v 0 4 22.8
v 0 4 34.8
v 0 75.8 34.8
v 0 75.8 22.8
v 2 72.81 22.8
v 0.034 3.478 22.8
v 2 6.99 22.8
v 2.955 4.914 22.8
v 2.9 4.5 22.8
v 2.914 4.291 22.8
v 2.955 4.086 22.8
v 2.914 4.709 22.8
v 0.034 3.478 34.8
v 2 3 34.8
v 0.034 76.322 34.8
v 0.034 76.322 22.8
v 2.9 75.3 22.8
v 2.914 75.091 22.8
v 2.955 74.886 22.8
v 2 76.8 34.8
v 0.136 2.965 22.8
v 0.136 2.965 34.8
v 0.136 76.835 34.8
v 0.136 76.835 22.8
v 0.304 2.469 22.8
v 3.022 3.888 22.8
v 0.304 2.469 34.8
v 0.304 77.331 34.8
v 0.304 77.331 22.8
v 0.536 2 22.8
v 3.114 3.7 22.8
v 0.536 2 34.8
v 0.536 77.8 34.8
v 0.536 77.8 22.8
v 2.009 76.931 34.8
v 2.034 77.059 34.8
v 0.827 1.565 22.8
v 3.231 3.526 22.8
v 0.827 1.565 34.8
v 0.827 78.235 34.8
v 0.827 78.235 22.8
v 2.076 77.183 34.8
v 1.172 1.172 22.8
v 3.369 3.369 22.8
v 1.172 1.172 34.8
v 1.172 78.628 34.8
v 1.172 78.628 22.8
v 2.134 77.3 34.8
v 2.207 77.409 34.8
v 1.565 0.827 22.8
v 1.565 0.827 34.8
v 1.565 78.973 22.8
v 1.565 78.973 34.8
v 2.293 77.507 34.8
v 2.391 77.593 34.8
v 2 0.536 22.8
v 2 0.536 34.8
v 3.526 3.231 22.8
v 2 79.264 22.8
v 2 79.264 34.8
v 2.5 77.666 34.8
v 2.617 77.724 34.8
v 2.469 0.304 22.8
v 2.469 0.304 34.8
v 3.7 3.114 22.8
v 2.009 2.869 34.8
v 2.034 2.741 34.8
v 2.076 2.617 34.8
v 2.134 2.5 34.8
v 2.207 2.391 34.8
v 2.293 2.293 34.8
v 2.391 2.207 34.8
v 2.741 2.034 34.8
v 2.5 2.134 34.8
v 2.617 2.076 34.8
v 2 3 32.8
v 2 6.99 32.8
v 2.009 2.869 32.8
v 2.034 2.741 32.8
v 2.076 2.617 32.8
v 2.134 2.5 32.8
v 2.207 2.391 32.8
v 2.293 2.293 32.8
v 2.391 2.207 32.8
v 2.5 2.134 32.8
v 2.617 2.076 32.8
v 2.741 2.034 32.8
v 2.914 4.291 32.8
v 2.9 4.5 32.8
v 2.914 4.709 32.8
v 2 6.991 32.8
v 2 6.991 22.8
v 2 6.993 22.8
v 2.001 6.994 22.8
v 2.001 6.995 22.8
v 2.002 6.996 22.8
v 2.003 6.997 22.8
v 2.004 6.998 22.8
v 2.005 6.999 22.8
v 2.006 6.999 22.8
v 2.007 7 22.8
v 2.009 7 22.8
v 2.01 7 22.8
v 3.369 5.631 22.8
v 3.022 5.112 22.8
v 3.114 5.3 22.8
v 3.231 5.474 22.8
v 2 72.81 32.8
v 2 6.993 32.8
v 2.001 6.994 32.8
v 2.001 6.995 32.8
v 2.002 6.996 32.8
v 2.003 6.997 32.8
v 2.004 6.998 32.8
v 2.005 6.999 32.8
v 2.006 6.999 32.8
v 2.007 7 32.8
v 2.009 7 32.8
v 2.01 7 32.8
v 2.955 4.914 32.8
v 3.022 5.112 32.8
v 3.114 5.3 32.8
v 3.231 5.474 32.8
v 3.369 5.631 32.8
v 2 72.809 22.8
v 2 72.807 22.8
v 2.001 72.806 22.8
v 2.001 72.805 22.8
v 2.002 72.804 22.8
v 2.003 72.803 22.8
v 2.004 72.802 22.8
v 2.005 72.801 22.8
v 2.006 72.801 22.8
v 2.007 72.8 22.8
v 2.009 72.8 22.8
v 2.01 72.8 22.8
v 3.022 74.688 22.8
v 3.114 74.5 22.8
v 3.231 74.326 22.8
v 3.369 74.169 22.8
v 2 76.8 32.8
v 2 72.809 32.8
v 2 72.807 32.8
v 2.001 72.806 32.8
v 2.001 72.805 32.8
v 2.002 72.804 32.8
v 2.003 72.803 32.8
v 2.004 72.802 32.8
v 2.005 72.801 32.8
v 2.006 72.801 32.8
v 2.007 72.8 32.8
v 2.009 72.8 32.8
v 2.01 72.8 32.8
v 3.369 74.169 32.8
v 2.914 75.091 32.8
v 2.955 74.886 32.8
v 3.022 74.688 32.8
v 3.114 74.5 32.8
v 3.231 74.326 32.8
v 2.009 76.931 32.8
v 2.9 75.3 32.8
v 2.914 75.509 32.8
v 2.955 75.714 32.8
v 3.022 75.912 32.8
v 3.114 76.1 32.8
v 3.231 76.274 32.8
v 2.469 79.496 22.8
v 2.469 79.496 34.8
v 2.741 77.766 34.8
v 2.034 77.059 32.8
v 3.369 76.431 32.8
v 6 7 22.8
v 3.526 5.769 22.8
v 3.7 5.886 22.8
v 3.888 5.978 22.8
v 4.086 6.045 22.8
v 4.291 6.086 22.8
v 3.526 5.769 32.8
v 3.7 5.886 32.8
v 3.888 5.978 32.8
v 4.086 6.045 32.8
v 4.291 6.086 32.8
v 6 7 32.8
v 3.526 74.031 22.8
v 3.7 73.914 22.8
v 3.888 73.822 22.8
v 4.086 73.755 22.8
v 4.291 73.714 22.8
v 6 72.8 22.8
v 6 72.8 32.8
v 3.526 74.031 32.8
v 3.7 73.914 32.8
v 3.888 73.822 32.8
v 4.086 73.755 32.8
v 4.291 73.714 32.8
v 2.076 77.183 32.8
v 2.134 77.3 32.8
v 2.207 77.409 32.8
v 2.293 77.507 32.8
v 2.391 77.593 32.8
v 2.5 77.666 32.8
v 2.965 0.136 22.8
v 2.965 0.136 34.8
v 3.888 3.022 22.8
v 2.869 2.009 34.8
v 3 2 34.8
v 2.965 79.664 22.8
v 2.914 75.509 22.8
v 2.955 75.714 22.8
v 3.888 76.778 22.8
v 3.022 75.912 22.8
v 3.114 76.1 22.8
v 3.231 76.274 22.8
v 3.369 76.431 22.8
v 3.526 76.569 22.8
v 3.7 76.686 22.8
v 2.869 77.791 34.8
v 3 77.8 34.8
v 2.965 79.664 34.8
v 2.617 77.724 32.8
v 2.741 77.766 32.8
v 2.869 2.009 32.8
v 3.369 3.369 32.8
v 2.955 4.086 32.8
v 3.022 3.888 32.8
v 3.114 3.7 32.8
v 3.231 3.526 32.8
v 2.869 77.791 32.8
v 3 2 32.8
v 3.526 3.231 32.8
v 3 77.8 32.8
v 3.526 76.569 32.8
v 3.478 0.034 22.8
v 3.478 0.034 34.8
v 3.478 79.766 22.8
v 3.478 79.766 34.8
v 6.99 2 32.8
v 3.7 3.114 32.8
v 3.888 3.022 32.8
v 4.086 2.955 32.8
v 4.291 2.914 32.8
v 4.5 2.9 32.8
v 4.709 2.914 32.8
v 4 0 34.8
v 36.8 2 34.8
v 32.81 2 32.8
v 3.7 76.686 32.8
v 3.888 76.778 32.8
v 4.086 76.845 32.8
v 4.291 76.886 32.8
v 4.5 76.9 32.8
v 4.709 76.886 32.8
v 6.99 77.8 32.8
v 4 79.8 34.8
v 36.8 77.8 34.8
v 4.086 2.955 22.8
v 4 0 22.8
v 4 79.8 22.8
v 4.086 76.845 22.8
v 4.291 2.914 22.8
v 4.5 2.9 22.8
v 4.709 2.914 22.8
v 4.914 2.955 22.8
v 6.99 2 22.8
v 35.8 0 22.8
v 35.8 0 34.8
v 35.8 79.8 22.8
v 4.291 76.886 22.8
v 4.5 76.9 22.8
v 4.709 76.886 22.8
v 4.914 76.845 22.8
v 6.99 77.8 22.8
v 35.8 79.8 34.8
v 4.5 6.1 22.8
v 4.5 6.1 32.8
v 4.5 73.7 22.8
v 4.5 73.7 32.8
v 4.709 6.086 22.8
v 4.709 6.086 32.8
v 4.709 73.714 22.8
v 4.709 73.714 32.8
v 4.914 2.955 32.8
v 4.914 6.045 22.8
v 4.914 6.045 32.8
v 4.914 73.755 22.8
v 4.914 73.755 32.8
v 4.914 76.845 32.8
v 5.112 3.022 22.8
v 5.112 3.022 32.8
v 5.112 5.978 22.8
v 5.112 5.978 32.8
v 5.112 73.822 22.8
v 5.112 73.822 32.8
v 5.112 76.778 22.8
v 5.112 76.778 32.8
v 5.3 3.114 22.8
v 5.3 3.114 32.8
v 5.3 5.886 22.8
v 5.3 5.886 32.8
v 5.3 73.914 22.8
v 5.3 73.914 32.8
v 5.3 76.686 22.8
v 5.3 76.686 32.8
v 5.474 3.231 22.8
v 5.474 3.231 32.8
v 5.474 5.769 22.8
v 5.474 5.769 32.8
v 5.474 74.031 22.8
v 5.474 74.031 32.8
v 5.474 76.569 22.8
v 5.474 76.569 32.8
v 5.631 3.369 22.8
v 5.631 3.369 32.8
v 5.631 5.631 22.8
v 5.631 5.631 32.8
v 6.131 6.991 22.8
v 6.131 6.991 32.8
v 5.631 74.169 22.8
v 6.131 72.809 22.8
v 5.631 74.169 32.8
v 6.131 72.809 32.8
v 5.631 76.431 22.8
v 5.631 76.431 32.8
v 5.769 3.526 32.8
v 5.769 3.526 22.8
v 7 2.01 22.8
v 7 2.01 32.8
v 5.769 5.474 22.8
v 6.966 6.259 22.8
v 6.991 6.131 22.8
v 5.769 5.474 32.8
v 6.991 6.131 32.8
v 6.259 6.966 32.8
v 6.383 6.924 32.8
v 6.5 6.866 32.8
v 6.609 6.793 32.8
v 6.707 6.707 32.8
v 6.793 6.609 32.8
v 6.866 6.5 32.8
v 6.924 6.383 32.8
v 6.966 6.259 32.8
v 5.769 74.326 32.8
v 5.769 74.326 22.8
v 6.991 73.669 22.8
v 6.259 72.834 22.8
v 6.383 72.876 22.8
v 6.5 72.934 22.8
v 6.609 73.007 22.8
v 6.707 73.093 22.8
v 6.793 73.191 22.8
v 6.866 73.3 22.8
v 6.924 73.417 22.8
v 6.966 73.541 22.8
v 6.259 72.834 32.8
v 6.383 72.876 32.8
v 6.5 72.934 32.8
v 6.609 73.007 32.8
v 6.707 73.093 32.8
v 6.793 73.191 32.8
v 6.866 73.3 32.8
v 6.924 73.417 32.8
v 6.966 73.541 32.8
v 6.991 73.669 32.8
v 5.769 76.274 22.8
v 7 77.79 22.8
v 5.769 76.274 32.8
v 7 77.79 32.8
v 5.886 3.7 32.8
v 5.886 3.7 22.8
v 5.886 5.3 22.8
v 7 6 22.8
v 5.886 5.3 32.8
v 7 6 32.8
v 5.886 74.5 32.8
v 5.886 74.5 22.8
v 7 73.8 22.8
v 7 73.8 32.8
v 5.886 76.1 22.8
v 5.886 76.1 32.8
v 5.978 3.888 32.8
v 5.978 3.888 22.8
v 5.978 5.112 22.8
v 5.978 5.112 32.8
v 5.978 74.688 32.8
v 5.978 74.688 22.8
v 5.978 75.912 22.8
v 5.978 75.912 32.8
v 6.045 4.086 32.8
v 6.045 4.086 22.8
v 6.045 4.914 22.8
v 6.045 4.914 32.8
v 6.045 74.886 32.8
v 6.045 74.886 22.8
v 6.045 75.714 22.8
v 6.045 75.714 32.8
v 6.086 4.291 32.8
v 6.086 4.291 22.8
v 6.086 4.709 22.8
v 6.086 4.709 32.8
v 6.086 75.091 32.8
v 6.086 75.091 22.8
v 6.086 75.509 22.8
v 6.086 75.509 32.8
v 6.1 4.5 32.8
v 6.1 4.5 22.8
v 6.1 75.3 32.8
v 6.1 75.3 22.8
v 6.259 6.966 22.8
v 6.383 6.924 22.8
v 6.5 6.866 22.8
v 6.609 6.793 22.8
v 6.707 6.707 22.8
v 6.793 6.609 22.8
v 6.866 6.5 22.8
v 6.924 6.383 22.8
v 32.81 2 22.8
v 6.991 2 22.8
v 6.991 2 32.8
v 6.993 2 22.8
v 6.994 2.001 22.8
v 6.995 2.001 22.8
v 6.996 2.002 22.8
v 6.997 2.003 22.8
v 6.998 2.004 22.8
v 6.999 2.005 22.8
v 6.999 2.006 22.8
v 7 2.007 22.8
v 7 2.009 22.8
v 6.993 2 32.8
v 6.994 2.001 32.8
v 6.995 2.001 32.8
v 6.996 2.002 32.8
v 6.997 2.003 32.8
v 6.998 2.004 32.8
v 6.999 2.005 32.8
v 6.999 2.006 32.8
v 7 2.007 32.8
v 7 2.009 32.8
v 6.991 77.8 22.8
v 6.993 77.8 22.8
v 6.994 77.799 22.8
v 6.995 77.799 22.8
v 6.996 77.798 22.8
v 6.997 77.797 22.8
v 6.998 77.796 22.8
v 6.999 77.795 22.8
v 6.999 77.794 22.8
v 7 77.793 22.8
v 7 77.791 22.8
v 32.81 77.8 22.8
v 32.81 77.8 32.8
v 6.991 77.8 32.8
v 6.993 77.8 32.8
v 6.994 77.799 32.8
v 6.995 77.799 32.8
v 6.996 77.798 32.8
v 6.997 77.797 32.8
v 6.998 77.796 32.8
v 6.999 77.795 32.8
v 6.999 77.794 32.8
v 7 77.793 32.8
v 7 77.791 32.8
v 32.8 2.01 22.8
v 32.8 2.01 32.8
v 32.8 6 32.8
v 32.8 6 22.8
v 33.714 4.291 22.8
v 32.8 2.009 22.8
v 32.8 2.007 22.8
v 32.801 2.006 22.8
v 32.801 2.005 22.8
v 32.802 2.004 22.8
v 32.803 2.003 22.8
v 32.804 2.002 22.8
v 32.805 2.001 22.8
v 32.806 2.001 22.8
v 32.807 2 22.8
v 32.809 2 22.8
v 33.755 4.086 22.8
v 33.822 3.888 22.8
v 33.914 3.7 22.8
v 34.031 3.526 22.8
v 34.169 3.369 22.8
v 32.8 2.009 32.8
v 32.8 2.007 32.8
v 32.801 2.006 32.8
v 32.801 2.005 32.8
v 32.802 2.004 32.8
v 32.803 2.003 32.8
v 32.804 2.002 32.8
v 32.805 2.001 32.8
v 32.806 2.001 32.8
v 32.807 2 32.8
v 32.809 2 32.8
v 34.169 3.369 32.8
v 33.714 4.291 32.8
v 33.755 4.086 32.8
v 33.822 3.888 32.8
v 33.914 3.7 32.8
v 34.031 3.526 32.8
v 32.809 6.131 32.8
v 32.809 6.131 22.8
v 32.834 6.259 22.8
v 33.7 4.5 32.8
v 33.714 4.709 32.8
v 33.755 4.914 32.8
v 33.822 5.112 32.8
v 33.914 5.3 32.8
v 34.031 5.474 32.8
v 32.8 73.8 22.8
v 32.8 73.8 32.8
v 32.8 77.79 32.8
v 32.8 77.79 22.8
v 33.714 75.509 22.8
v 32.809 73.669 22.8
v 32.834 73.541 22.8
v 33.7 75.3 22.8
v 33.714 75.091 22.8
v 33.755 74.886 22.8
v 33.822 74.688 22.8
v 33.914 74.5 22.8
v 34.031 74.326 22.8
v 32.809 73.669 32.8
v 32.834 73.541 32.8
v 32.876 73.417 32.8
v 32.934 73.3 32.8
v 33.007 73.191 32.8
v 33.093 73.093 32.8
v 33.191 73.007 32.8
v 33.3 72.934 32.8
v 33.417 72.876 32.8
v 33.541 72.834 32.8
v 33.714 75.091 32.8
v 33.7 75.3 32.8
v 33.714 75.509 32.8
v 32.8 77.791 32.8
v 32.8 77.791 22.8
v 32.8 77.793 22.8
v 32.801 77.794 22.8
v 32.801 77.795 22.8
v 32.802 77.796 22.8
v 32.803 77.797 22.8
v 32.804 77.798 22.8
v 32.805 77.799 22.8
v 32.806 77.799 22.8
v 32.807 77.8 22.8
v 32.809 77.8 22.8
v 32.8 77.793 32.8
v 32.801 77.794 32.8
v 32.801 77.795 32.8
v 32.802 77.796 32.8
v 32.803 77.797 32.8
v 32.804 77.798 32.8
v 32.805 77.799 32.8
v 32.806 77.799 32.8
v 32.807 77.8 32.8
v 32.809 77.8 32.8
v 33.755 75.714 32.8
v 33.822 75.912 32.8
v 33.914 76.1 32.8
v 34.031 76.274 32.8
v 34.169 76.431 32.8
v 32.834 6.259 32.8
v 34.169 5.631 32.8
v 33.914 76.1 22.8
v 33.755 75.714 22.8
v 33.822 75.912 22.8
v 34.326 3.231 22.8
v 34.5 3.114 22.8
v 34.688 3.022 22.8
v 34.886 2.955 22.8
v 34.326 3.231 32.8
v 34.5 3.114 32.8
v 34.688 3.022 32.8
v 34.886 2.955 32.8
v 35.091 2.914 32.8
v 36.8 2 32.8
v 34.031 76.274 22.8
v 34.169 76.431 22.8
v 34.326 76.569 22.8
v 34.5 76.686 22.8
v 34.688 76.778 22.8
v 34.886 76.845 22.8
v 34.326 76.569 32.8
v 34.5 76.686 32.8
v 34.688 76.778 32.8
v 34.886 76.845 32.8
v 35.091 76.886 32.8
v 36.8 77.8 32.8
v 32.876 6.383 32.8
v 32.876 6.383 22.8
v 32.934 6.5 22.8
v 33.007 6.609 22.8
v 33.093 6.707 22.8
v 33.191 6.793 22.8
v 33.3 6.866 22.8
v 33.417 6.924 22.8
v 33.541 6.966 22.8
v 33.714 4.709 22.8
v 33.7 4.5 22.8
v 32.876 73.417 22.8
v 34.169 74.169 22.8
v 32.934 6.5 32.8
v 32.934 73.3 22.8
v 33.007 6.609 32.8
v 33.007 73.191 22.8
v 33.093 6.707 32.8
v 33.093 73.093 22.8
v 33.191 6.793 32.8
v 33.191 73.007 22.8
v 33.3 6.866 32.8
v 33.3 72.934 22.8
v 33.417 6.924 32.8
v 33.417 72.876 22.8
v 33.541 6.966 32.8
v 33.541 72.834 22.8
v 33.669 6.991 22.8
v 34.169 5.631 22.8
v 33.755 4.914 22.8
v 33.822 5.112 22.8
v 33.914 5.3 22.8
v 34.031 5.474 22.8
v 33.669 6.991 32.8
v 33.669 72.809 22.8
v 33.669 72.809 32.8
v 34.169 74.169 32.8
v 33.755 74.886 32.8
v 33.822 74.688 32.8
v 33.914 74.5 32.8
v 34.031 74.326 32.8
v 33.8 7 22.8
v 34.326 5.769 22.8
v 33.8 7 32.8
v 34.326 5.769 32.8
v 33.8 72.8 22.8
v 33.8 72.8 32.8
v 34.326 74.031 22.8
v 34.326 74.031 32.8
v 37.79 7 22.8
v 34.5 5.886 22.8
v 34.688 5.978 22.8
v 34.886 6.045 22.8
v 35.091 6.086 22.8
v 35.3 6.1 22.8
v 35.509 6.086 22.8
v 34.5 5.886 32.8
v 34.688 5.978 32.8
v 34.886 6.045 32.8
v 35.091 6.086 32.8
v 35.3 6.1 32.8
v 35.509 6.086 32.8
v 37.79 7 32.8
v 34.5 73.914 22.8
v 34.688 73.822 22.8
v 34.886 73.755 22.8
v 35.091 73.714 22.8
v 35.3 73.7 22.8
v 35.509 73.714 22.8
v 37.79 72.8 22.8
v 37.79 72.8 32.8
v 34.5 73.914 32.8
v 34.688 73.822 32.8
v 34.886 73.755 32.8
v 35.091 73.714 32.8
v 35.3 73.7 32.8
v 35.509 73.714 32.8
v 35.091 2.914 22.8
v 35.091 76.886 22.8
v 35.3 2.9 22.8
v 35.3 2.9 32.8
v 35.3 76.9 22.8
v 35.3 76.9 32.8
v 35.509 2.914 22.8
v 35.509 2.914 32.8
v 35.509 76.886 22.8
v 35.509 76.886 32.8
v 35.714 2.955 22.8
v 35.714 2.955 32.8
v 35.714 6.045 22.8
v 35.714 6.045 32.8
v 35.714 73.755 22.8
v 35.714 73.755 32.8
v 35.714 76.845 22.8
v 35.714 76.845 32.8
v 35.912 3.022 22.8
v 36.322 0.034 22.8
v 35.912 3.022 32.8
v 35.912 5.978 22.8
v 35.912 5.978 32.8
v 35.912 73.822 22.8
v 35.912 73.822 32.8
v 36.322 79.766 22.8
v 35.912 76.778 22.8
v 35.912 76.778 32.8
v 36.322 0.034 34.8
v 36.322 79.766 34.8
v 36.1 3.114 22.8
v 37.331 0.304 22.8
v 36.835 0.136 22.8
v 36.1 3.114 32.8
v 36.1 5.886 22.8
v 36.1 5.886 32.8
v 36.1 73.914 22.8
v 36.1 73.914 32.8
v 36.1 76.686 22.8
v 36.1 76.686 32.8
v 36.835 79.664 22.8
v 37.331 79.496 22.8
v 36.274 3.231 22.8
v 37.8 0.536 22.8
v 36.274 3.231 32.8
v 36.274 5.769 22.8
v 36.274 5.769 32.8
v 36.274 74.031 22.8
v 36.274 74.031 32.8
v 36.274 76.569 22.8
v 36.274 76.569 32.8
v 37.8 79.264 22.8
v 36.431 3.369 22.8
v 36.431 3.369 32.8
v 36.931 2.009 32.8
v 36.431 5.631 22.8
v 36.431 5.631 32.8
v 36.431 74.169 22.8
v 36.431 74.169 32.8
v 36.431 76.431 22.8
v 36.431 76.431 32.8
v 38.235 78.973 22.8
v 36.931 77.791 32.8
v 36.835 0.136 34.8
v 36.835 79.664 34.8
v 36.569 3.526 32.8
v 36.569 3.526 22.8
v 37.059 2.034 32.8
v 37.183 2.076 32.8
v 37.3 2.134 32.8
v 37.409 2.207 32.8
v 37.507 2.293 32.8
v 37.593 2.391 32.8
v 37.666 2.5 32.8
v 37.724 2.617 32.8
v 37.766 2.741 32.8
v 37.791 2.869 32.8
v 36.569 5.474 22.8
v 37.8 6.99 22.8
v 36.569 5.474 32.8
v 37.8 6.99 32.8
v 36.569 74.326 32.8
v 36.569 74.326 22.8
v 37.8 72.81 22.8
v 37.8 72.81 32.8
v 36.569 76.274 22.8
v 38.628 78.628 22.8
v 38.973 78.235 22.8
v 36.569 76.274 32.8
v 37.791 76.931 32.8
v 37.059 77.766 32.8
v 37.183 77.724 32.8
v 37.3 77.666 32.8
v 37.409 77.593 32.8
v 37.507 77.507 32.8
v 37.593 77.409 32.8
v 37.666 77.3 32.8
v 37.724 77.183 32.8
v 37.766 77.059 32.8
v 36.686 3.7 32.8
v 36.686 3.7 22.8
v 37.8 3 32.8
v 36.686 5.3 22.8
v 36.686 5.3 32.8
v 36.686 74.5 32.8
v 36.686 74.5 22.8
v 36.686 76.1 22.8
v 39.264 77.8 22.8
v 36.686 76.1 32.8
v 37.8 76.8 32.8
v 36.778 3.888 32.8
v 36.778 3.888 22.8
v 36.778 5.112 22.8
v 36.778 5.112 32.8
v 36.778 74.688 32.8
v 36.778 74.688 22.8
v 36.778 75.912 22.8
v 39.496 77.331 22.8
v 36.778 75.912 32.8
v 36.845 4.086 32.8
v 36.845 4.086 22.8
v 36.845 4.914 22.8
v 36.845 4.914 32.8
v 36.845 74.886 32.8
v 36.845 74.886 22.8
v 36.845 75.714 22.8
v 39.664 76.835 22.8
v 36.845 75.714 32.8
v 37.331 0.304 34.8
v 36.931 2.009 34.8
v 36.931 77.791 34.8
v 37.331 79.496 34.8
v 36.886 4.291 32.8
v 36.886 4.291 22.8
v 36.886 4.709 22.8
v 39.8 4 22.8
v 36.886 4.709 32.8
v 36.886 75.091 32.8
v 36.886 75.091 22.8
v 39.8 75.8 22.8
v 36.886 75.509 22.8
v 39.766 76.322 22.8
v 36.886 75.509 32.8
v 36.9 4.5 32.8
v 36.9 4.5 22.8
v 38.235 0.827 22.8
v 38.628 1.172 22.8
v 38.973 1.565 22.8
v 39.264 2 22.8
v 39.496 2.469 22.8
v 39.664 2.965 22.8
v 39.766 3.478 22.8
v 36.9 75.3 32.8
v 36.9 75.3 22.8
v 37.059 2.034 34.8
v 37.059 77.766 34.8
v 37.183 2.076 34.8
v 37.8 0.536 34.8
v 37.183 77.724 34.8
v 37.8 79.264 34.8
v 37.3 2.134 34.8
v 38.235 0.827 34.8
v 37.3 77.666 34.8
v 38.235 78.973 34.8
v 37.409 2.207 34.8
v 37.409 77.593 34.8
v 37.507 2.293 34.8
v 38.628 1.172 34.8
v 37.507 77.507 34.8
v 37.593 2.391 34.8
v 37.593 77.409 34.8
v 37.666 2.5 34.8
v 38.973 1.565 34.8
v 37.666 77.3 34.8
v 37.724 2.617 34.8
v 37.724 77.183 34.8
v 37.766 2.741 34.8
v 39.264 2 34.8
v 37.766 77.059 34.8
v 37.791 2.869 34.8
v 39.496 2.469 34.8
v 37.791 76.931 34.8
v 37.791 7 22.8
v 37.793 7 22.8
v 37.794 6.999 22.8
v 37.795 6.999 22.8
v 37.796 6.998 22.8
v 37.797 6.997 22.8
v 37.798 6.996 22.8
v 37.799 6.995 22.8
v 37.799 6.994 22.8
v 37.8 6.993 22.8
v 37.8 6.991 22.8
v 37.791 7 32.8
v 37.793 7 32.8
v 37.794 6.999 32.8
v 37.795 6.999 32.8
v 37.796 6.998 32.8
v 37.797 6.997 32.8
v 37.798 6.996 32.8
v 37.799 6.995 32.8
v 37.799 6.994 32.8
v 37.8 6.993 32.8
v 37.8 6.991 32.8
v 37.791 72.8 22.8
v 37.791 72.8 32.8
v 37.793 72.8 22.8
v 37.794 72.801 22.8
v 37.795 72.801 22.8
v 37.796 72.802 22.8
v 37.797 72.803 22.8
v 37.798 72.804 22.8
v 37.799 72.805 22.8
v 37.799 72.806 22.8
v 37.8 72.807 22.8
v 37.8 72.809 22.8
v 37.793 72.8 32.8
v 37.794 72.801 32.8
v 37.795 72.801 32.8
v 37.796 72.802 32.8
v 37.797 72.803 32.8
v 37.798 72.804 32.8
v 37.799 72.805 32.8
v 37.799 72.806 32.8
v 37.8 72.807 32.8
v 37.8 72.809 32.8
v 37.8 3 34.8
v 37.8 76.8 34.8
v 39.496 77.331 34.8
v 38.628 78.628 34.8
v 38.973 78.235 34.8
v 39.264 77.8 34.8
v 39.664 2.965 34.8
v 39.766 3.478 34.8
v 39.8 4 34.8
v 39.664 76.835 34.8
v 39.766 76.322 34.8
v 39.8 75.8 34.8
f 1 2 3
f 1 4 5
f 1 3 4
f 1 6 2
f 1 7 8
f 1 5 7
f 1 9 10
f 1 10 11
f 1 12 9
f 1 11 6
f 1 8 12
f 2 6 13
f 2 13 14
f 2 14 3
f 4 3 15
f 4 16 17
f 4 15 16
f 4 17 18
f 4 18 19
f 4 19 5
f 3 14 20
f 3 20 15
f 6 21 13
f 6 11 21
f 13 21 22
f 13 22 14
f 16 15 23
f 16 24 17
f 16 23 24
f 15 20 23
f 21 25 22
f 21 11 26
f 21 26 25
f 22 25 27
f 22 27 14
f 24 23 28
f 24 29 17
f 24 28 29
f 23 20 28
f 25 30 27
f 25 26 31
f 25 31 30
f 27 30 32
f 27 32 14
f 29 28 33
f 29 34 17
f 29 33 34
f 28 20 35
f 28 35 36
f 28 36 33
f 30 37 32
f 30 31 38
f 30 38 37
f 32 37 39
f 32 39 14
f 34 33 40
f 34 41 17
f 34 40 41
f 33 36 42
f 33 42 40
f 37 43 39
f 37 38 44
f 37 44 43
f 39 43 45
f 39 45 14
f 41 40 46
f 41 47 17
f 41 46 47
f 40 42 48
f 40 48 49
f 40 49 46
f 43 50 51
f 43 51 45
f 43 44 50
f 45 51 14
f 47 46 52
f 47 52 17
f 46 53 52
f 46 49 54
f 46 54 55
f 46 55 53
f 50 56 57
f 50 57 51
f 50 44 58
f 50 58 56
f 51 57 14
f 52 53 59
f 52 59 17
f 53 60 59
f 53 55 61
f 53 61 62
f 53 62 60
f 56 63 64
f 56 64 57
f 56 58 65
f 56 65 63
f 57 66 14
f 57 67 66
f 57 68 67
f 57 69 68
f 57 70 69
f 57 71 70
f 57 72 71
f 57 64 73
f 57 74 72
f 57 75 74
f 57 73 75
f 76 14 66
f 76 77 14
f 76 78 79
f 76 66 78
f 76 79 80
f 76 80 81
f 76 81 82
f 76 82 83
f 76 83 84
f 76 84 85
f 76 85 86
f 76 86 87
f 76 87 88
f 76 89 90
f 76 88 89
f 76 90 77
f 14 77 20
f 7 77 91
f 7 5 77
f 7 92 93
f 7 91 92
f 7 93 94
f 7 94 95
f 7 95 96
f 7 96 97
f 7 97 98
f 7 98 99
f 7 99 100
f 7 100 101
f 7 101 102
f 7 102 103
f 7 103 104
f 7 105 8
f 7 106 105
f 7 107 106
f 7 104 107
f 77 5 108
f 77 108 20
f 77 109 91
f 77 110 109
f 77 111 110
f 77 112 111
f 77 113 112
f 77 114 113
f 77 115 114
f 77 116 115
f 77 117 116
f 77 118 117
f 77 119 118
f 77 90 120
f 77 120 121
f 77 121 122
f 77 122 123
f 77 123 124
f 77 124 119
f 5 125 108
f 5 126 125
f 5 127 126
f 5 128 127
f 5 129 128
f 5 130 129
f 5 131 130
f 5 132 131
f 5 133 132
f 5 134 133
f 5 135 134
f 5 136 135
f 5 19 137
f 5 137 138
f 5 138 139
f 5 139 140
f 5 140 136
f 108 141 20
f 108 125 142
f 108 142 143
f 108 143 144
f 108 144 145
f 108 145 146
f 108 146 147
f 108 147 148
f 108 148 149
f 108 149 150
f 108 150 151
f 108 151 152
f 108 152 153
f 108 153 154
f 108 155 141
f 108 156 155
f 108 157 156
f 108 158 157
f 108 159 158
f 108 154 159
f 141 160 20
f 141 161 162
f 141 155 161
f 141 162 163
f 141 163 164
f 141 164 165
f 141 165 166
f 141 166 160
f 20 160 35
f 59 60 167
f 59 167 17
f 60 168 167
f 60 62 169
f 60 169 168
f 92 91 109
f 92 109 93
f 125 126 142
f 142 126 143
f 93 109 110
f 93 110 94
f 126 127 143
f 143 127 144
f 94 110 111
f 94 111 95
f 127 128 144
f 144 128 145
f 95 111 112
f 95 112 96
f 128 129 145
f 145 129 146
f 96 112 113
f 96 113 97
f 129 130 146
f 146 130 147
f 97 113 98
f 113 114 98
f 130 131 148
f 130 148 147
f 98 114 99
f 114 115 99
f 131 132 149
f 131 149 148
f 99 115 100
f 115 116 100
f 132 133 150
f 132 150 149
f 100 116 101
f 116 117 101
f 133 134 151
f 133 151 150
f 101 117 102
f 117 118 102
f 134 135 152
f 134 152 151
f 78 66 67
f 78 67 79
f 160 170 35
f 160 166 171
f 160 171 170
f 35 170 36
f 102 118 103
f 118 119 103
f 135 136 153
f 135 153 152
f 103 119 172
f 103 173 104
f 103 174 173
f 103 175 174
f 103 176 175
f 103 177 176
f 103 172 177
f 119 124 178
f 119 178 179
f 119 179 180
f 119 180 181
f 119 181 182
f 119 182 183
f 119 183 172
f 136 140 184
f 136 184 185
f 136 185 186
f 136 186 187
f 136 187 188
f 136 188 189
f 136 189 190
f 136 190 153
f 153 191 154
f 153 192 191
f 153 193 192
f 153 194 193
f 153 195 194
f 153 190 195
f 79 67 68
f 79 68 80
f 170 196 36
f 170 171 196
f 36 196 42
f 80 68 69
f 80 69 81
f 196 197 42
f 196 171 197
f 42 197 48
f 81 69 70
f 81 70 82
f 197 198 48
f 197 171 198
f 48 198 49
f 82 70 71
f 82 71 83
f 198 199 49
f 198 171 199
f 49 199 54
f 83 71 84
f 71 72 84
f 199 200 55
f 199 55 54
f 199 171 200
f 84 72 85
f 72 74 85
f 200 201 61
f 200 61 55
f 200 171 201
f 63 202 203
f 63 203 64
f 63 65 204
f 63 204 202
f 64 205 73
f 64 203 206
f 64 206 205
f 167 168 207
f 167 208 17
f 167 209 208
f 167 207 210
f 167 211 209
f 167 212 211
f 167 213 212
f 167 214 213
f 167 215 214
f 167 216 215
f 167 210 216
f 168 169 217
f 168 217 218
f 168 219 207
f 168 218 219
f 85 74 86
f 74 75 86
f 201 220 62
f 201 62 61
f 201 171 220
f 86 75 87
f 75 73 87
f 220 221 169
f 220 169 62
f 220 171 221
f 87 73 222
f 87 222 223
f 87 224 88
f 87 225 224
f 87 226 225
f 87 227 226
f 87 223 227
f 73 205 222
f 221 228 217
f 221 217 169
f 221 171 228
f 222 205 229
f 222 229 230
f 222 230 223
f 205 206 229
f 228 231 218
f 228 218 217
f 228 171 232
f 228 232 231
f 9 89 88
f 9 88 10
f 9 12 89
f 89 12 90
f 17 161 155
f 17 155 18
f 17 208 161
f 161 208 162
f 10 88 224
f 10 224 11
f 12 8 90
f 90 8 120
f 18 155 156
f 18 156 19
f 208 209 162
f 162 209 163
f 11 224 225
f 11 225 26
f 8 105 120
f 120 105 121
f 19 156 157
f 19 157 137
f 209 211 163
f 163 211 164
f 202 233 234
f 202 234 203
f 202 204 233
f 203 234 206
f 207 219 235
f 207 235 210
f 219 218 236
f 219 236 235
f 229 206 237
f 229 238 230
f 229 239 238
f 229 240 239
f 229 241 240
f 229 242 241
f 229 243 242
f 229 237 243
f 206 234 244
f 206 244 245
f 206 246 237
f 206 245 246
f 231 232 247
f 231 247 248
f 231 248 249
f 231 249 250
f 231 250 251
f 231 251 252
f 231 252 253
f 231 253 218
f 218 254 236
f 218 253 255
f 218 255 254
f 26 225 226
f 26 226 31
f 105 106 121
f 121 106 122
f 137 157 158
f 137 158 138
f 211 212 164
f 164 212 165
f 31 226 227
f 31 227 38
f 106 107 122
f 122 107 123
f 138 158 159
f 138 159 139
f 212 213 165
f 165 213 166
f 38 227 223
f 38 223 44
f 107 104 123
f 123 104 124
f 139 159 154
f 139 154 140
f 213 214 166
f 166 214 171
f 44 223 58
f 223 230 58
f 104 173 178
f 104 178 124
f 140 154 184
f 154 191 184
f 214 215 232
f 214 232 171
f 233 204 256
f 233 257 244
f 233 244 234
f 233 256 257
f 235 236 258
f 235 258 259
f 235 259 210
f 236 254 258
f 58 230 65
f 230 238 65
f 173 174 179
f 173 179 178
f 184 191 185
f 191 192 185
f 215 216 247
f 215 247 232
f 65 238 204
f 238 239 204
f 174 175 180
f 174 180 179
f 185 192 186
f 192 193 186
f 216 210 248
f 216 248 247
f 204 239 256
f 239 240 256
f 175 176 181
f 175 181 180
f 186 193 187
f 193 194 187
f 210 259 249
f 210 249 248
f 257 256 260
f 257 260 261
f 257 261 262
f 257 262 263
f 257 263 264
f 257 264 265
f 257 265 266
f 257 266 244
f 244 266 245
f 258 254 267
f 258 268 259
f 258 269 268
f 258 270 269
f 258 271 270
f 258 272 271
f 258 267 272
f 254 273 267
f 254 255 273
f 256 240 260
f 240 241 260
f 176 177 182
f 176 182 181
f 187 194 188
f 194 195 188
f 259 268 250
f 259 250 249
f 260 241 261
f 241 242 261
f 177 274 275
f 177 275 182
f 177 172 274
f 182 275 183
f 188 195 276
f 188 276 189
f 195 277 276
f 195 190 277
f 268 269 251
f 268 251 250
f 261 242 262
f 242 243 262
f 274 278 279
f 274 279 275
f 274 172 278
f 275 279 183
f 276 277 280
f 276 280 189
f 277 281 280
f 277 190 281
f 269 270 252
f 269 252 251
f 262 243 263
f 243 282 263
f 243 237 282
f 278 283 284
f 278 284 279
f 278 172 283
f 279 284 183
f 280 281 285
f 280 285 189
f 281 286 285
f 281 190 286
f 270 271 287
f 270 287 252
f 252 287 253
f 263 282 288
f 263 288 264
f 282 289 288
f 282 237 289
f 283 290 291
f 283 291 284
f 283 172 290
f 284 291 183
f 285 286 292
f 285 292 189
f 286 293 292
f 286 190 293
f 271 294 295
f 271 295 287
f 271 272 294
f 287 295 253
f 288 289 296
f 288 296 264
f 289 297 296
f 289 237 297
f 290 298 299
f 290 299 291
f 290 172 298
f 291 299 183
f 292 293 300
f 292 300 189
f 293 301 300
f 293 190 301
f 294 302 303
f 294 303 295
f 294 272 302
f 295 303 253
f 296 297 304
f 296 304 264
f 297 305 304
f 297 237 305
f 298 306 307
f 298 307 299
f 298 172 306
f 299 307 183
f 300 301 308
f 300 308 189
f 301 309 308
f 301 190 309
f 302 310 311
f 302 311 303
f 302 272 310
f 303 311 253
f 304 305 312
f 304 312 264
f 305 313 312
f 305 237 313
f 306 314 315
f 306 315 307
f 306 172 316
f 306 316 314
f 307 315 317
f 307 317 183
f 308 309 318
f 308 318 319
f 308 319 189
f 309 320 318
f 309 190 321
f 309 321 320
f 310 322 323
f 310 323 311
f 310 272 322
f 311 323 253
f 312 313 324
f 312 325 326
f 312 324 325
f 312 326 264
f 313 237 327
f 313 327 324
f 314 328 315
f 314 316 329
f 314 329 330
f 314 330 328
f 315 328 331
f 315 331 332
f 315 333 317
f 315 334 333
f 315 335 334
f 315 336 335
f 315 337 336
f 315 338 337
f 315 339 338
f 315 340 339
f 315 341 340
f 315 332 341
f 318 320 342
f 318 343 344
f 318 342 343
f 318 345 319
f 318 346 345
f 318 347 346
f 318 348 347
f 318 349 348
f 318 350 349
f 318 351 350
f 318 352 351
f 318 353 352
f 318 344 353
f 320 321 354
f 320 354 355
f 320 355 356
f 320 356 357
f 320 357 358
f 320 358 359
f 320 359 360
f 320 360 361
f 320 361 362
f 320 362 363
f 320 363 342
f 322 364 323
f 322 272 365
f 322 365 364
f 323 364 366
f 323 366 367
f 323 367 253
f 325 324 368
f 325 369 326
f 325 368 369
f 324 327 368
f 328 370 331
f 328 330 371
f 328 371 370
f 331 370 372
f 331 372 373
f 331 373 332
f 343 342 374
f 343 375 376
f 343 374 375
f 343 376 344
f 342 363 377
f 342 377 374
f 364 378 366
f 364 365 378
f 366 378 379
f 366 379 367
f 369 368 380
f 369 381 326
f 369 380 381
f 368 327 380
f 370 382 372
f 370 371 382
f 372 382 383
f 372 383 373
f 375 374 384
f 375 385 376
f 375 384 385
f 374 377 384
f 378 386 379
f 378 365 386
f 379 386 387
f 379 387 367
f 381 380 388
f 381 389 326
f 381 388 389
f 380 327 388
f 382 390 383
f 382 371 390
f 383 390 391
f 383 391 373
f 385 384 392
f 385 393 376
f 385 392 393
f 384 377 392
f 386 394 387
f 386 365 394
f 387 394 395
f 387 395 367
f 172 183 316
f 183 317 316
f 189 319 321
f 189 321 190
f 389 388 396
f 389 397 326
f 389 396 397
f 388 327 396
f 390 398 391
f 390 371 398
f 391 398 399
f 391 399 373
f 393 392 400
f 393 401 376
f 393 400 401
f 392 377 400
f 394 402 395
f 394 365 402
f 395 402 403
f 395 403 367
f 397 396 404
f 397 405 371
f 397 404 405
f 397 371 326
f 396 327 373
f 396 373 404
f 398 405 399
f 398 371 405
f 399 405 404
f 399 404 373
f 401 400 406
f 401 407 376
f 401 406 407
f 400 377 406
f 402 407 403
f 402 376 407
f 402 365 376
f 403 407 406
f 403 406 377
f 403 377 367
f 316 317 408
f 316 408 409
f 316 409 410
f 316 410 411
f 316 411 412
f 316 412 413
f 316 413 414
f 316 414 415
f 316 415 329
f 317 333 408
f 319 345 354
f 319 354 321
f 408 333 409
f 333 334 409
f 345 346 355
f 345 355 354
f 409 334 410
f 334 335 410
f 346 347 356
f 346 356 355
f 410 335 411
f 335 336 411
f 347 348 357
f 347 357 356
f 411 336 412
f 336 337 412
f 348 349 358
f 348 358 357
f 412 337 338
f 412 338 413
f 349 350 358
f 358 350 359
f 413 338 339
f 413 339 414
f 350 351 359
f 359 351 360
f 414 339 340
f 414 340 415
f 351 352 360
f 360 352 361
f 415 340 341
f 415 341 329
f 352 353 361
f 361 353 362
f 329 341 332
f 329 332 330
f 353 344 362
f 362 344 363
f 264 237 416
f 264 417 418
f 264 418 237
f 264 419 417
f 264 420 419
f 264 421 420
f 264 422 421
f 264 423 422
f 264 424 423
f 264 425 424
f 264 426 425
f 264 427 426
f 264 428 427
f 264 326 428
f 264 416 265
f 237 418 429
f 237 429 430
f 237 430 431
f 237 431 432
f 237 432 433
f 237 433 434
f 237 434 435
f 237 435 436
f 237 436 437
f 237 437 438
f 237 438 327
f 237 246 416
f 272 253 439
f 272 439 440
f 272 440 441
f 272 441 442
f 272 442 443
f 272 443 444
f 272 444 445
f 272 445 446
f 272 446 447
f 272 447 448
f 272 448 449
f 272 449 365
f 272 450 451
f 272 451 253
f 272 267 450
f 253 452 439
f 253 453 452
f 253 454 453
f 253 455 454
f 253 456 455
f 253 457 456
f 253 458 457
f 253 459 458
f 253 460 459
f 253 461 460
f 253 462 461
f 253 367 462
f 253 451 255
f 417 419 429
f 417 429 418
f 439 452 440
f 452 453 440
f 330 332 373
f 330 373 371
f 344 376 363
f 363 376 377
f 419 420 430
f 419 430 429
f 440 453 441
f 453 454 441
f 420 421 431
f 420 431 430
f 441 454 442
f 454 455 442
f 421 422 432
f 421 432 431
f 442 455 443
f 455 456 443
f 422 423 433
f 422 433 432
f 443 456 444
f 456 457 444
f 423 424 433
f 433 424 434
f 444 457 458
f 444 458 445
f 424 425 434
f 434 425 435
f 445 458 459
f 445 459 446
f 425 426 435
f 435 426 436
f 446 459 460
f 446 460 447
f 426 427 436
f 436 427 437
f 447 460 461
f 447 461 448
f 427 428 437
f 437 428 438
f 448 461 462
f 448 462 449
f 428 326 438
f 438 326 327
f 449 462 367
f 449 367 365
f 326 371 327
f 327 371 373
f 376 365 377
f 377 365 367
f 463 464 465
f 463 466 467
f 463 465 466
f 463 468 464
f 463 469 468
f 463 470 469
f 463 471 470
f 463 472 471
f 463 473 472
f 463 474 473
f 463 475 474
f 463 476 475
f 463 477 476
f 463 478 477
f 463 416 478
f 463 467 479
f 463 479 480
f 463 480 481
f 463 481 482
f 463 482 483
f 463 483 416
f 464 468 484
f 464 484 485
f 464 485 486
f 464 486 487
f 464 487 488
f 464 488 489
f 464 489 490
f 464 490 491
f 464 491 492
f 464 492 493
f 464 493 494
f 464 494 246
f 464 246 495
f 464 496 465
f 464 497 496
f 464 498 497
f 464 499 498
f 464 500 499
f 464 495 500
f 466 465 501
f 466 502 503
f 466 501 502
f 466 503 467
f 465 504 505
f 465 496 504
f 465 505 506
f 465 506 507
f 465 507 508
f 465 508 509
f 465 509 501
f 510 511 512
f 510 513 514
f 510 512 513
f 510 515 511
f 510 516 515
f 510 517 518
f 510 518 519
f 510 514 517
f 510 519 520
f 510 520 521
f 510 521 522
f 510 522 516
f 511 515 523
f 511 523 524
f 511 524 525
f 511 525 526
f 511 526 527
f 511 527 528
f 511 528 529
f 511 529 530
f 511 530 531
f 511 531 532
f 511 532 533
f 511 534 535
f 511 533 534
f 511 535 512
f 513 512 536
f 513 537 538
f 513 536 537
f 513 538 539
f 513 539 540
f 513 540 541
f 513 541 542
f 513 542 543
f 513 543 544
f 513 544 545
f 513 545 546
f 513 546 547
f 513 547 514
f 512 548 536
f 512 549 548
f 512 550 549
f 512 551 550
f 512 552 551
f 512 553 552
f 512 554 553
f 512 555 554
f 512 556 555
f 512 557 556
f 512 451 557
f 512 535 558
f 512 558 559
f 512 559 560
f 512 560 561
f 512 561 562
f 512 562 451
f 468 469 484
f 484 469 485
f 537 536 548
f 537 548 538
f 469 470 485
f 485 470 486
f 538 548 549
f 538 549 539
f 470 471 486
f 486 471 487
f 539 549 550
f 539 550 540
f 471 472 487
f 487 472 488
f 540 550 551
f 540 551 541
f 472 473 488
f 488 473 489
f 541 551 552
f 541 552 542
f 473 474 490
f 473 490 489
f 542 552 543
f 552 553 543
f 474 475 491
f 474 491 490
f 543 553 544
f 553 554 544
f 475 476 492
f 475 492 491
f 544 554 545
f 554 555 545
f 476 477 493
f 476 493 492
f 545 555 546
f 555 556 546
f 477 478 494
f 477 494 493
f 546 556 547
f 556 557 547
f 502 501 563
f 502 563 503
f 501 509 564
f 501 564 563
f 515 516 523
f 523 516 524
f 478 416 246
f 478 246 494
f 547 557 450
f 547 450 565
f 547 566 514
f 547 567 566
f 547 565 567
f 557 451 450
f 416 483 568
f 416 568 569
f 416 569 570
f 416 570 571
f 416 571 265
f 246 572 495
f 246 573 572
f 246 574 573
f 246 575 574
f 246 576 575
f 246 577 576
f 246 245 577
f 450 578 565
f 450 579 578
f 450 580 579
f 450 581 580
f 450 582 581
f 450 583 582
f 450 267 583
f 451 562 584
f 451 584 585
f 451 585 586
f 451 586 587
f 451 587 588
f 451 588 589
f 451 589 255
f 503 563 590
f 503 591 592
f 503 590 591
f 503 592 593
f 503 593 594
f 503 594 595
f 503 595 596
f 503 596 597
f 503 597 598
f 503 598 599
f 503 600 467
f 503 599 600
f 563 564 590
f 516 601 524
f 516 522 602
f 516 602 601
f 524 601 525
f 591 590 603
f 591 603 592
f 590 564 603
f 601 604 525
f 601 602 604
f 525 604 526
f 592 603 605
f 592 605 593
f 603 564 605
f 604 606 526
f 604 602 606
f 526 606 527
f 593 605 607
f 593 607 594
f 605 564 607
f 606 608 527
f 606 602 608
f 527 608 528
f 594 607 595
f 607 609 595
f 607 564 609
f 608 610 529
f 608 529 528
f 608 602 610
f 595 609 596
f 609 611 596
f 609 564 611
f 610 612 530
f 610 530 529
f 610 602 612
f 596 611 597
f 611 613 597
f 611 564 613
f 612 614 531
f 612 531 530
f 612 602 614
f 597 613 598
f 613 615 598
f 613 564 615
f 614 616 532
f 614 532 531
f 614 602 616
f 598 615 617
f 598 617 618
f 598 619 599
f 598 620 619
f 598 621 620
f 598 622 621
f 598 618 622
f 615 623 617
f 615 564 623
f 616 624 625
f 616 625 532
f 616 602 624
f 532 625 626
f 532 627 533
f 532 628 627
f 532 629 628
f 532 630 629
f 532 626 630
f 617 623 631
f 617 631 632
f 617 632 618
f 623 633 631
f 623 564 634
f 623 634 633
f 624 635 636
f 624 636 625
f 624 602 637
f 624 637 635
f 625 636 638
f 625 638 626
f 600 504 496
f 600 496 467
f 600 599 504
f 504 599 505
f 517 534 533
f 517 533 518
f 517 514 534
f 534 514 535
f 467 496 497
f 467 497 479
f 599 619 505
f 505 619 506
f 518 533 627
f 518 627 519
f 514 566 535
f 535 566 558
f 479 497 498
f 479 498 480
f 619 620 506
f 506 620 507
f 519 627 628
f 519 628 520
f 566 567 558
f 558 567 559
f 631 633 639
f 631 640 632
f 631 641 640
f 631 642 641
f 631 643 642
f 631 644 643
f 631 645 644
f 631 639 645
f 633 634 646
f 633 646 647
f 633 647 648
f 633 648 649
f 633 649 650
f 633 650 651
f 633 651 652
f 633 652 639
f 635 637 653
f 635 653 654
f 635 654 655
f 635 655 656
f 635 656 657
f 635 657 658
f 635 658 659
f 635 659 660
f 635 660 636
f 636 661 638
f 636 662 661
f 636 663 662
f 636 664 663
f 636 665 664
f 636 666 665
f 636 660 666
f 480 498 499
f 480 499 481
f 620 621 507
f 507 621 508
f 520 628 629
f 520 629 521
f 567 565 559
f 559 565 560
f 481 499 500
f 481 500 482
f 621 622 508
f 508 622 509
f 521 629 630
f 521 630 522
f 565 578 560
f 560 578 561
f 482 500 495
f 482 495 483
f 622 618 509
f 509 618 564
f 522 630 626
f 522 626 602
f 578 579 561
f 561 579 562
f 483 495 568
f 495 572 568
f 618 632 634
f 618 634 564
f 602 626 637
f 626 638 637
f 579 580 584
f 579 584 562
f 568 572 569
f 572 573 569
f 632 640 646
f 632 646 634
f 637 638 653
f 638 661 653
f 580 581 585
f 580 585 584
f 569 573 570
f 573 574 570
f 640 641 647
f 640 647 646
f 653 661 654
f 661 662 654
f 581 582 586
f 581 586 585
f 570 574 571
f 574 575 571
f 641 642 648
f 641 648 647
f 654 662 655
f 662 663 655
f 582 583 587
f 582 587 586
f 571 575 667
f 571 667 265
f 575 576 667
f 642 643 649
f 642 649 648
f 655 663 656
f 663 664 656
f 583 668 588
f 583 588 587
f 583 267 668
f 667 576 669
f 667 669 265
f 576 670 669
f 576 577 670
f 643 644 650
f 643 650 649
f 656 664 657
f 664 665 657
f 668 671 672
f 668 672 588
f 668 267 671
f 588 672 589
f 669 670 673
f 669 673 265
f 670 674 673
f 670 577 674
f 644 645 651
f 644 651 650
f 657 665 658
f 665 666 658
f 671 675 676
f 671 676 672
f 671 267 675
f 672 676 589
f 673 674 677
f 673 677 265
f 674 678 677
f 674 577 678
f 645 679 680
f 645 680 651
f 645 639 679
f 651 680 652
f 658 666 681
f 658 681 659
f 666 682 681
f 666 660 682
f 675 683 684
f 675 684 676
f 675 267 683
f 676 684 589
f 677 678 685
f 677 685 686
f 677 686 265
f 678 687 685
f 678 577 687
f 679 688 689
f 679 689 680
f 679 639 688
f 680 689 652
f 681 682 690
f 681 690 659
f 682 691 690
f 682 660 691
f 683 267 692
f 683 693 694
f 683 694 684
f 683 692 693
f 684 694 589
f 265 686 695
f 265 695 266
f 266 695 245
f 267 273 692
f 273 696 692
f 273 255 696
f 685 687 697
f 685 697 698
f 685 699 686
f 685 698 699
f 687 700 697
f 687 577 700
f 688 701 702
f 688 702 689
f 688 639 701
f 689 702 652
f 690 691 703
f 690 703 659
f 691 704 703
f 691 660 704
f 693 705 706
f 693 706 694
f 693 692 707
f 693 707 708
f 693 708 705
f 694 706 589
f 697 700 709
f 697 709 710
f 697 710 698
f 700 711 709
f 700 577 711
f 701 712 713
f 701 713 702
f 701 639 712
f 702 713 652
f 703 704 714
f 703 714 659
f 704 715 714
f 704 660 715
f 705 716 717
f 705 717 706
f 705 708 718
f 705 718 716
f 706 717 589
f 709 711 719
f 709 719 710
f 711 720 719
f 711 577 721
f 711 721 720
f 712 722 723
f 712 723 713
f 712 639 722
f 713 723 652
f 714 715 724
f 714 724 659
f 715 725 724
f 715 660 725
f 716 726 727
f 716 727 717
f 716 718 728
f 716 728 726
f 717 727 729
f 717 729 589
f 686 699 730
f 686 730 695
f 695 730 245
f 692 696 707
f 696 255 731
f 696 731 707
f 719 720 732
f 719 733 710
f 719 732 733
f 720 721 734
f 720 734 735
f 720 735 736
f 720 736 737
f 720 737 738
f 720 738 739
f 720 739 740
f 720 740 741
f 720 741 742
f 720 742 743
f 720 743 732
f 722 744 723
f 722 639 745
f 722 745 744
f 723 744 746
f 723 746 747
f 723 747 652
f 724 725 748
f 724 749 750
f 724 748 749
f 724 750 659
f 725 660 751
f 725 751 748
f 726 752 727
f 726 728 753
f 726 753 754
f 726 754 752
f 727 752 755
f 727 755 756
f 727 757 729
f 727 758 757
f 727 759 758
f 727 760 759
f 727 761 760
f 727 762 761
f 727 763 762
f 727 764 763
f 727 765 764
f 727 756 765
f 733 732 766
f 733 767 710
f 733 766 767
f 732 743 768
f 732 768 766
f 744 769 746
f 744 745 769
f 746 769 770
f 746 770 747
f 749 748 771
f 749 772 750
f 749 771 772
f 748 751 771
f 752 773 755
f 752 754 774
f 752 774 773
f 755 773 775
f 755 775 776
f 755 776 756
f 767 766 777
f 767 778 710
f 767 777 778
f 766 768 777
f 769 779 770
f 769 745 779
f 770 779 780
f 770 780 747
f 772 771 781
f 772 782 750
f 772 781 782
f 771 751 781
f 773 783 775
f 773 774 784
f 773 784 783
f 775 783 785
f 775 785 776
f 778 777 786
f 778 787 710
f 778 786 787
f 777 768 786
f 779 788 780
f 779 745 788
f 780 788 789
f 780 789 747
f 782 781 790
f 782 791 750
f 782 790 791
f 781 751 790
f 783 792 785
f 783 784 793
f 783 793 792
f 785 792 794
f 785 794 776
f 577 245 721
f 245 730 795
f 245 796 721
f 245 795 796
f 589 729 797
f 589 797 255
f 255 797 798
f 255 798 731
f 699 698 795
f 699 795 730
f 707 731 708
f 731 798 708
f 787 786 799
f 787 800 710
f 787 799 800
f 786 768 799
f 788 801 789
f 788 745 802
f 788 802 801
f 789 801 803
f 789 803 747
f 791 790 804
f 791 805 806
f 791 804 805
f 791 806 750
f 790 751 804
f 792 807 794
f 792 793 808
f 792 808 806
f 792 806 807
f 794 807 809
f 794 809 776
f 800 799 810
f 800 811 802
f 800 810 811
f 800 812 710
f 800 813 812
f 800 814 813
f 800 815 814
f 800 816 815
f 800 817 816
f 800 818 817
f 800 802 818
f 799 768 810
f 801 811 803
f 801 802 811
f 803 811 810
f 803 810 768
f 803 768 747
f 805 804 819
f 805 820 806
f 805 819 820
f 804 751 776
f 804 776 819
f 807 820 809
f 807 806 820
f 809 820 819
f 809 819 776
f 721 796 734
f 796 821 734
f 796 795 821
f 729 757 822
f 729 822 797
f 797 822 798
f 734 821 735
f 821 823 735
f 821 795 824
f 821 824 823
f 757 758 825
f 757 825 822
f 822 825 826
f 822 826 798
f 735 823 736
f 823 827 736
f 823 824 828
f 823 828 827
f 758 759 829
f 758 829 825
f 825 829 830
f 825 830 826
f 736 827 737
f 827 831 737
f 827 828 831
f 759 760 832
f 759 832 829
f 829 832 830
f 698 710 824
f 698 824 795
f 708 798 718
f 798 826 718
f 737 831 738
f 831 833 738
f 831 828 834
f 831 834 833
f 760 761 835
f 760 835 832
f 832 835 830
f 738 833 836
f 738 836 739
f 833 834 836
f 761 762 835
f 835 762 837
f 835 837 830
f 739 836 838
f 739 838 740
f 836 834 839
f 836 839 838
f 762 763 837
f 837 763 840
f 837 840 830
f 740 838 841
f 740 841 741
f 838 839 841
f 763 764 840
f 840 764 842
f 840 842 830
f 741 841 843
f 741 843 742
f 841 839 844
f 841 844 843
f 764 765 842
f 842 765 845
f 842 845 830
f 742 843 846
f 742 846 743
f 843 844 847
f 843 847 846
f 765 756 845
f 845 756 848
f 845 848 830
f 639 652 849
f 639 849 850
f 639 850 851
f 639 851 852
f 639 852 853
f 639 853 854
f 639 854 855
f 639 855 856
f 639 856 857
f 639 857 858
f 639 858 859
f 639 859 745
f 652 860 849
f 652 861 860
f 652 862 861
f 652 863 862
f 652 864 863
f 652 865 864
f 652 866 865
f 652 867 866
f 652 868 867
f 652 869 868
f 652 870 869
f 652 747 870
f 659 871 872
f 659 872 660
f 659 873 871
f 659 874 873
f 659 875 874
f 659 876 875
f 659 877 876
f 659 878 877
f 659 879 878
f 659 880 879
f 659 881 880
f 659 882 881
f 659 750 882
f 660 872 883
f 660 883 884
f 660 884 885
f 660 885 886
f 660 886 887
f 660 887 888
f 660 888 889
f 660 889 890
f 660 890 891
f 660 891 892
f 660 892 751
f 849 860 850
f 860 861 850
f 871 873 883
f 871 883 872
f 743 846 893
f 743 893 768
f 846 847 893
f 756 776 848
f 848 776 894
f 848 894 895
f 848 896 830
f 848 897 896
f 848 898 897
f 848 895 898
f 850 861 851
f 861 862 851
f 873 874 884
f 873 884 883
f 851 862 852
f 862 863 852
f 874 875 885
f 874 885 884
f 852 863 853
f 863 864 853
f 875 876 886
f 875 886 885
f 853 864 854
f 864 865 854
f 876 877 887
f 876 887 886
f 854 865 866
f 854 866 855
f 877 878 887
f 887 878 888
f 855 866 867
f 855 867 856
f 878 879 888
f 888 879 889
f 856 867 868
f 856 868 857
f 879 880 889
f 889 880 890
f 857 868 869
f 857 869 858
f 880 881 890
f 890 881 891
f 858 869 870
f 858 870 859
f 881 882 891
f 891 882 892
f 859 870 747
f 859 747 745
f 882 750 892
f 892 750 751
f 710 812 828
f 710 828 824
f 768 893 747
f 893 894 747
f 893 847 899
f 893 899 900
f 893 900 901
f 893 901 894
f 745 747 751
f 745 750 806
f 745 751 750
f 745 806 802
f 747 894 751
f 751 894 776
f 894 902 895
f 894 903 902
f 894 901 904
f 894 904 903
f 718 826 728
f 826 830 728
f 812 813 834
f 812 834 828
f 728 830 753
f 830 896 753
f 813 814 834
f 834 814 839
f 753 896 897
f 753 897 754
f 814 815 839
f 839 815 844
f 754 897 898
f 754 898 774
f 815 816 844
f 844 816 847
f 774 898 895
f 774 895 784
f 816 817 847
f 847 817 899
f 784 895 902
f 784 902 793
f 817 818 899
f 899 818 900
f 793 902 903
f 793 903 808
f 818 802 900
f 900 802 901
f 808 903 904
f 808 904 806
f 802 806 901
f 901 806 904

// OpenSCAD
// Dilder Top Cover v3 — open border frame with rounded inner corners for flush plate seating
//
// No dome, no floor — just the perimeter wall ring + 4 corner pillar posts.
// Solid border all around (no wire notch).
// Inner corners and countersink pocket are rounded to match the windowed plate's corner radius,
// allowing it to slide in flush at the pillar junctions.
//
// Export:
//   openscad -o top-cover-v3.3mf top-cover-v3.scad

$fn = 48;

// ---- Board (Olimex ESP32-S3-DevKit-Lipo) ----
board_len      = 56;
board_wid      = 28;
antenna_proj   = 6;

// ---- Waveshare 2.13" display ----
disp_len       = 65;
disp_wid       = 30;
disp_thk       = 5;

// ---- 1000 mAh battery ----
bat_len        = 52;
bat_wid        = 35;

// ---- Enclosure geometry ----
wall_thk       = 2;
plate_thk      = 2;
pillar         = 5;
slop           = 0.4;
bat_chamber_h  = 6;
disp_clear     = 1;
board_thk      = 1.6;
wroom_h        = 3.2;
top_gap        = 10;       // +5mm height

screw_clr      = 3.2;

// ---- Rounding ----
case_corner_r  = 4;
plate_corner_r = 1;       // must match windowed plate's corner radius

// ---- Z layout ----
z_base_top     = plate_thk;
z_mid_bot      = z_base_top + bat_chamber_h;
z_mid_top      = z_mid_bot + plate_thk;
z_board_bot    = z_mid_top;
z_board_top    = z_board_bot + board_thk;
z_wroom_top    = z_board_top + wroom_h;
z_disp_bot     = z_wroom_top + disp_clear;
z_disp_top     = z_disp_bot + disp_thk;
base_wall_top  = z_disp_top + plate_thk;
z_cover_bot    = base_wall_top;
cover_h        = plate_thk + top_gap;

// ---- XY layout ----
inner_wid      = max(board_wid, disp_wid, bat_wid) + 2 * slop;
inner_len      = max(board_len + antenna_proj, disp_len + 2 * pillar, bat_len) + 2 * slop;
outer_wid      = inner_wid + 2 * wall_thk;
outer_len      = inner_len + 2 * wall_thk;

pillar_xy = [
    [wall_thk,                             wall_thk                            ],
    [outer_wid - wall_thk - pillar,        wall_thk                            ],
    [wall_thk,                             outer_len - wall_thk - pillar       ],
    [outer_wid - wall_thk - pillar,        outer_len - wall_thk - pillar       ],
];


// ============== SHARED ==============

module rounded_v_box(w, l, h, r, fn = 48) {
    hull() {
        for (x = [r, w - r])
            for (y = [r, l - r])
                translate([x, y, 0])
                    cylinder(r = r, h = h, $fn = fn);
    }
}

// Pillar with only one corner rounded (the exposed inner corner).
// round_x/round_y: 0=near edge, 1=far edge — selects which corner gets the radius.
module pillar_one_round(w, l, h, r, round_x, round_y) {
    tiny = 0.01;
    hull() {
        for (ix = [0, 1])
            for (iy = [0, 1]) {
                cr = (ix == round_x && iy == round_y) ? r : tiny;
                translate([cr + ix * (w - 2*cr), cr + iy * (l - 2*cr), 0])
                    cylinder(r = cr, h = h, $fn = 48);
            }
    }
}


// ============== TOP COVER v3 ==============

module top_cover() {
    translate([0, 0, z_cover_bot])
    difference() {
        union() {
            // Outer wall ring — rounded outer edges, rounded inner edges
            difference() {
                rounded_v_box(outer_wid, outer_len, cover_h, case_corner_r);
                translate([wall_thk, wall_thk, -0.1])
                    rounded_v_box(inner_wid, inner_len, cover_h + 0.2, plate_corner_r);
            }

            // Pillar posts — only the exposed inner corner is rounded
            for (p = pillar_xy) {
                rx = (p[0] < outer_wid/2) ? 1 : 0;
                ry = (p[1] < outer_len/2) ? 1 : 0;
                translate([p[0], p[1], 0])
                    pillar_one_round(pillar, pillar, cover_h, plate_corner_r, rx, ry);
            }
        }

        // Countersink — single rounded pocket matching plate footprint
        // Cuts into pillar tops with rounded inner corners so plate seats flush
        translate([wall_thk, wall_thk, cover_h - plate_thk])
            rounded_v_box(inner_wid, inner_len, plate_thk + 0.1, plate_corner_r);

        // Screw clearance holes through pillars
        for (p = pillar_xy) {
            cx = p[0] + pillar/2;
            cy = p[1] + pillar/2;
            translate([cx, cy, -0.1])
                cylinder(h = cover_h + 0.2, d = screw_clr);
        }
    }
}

top_cover();
